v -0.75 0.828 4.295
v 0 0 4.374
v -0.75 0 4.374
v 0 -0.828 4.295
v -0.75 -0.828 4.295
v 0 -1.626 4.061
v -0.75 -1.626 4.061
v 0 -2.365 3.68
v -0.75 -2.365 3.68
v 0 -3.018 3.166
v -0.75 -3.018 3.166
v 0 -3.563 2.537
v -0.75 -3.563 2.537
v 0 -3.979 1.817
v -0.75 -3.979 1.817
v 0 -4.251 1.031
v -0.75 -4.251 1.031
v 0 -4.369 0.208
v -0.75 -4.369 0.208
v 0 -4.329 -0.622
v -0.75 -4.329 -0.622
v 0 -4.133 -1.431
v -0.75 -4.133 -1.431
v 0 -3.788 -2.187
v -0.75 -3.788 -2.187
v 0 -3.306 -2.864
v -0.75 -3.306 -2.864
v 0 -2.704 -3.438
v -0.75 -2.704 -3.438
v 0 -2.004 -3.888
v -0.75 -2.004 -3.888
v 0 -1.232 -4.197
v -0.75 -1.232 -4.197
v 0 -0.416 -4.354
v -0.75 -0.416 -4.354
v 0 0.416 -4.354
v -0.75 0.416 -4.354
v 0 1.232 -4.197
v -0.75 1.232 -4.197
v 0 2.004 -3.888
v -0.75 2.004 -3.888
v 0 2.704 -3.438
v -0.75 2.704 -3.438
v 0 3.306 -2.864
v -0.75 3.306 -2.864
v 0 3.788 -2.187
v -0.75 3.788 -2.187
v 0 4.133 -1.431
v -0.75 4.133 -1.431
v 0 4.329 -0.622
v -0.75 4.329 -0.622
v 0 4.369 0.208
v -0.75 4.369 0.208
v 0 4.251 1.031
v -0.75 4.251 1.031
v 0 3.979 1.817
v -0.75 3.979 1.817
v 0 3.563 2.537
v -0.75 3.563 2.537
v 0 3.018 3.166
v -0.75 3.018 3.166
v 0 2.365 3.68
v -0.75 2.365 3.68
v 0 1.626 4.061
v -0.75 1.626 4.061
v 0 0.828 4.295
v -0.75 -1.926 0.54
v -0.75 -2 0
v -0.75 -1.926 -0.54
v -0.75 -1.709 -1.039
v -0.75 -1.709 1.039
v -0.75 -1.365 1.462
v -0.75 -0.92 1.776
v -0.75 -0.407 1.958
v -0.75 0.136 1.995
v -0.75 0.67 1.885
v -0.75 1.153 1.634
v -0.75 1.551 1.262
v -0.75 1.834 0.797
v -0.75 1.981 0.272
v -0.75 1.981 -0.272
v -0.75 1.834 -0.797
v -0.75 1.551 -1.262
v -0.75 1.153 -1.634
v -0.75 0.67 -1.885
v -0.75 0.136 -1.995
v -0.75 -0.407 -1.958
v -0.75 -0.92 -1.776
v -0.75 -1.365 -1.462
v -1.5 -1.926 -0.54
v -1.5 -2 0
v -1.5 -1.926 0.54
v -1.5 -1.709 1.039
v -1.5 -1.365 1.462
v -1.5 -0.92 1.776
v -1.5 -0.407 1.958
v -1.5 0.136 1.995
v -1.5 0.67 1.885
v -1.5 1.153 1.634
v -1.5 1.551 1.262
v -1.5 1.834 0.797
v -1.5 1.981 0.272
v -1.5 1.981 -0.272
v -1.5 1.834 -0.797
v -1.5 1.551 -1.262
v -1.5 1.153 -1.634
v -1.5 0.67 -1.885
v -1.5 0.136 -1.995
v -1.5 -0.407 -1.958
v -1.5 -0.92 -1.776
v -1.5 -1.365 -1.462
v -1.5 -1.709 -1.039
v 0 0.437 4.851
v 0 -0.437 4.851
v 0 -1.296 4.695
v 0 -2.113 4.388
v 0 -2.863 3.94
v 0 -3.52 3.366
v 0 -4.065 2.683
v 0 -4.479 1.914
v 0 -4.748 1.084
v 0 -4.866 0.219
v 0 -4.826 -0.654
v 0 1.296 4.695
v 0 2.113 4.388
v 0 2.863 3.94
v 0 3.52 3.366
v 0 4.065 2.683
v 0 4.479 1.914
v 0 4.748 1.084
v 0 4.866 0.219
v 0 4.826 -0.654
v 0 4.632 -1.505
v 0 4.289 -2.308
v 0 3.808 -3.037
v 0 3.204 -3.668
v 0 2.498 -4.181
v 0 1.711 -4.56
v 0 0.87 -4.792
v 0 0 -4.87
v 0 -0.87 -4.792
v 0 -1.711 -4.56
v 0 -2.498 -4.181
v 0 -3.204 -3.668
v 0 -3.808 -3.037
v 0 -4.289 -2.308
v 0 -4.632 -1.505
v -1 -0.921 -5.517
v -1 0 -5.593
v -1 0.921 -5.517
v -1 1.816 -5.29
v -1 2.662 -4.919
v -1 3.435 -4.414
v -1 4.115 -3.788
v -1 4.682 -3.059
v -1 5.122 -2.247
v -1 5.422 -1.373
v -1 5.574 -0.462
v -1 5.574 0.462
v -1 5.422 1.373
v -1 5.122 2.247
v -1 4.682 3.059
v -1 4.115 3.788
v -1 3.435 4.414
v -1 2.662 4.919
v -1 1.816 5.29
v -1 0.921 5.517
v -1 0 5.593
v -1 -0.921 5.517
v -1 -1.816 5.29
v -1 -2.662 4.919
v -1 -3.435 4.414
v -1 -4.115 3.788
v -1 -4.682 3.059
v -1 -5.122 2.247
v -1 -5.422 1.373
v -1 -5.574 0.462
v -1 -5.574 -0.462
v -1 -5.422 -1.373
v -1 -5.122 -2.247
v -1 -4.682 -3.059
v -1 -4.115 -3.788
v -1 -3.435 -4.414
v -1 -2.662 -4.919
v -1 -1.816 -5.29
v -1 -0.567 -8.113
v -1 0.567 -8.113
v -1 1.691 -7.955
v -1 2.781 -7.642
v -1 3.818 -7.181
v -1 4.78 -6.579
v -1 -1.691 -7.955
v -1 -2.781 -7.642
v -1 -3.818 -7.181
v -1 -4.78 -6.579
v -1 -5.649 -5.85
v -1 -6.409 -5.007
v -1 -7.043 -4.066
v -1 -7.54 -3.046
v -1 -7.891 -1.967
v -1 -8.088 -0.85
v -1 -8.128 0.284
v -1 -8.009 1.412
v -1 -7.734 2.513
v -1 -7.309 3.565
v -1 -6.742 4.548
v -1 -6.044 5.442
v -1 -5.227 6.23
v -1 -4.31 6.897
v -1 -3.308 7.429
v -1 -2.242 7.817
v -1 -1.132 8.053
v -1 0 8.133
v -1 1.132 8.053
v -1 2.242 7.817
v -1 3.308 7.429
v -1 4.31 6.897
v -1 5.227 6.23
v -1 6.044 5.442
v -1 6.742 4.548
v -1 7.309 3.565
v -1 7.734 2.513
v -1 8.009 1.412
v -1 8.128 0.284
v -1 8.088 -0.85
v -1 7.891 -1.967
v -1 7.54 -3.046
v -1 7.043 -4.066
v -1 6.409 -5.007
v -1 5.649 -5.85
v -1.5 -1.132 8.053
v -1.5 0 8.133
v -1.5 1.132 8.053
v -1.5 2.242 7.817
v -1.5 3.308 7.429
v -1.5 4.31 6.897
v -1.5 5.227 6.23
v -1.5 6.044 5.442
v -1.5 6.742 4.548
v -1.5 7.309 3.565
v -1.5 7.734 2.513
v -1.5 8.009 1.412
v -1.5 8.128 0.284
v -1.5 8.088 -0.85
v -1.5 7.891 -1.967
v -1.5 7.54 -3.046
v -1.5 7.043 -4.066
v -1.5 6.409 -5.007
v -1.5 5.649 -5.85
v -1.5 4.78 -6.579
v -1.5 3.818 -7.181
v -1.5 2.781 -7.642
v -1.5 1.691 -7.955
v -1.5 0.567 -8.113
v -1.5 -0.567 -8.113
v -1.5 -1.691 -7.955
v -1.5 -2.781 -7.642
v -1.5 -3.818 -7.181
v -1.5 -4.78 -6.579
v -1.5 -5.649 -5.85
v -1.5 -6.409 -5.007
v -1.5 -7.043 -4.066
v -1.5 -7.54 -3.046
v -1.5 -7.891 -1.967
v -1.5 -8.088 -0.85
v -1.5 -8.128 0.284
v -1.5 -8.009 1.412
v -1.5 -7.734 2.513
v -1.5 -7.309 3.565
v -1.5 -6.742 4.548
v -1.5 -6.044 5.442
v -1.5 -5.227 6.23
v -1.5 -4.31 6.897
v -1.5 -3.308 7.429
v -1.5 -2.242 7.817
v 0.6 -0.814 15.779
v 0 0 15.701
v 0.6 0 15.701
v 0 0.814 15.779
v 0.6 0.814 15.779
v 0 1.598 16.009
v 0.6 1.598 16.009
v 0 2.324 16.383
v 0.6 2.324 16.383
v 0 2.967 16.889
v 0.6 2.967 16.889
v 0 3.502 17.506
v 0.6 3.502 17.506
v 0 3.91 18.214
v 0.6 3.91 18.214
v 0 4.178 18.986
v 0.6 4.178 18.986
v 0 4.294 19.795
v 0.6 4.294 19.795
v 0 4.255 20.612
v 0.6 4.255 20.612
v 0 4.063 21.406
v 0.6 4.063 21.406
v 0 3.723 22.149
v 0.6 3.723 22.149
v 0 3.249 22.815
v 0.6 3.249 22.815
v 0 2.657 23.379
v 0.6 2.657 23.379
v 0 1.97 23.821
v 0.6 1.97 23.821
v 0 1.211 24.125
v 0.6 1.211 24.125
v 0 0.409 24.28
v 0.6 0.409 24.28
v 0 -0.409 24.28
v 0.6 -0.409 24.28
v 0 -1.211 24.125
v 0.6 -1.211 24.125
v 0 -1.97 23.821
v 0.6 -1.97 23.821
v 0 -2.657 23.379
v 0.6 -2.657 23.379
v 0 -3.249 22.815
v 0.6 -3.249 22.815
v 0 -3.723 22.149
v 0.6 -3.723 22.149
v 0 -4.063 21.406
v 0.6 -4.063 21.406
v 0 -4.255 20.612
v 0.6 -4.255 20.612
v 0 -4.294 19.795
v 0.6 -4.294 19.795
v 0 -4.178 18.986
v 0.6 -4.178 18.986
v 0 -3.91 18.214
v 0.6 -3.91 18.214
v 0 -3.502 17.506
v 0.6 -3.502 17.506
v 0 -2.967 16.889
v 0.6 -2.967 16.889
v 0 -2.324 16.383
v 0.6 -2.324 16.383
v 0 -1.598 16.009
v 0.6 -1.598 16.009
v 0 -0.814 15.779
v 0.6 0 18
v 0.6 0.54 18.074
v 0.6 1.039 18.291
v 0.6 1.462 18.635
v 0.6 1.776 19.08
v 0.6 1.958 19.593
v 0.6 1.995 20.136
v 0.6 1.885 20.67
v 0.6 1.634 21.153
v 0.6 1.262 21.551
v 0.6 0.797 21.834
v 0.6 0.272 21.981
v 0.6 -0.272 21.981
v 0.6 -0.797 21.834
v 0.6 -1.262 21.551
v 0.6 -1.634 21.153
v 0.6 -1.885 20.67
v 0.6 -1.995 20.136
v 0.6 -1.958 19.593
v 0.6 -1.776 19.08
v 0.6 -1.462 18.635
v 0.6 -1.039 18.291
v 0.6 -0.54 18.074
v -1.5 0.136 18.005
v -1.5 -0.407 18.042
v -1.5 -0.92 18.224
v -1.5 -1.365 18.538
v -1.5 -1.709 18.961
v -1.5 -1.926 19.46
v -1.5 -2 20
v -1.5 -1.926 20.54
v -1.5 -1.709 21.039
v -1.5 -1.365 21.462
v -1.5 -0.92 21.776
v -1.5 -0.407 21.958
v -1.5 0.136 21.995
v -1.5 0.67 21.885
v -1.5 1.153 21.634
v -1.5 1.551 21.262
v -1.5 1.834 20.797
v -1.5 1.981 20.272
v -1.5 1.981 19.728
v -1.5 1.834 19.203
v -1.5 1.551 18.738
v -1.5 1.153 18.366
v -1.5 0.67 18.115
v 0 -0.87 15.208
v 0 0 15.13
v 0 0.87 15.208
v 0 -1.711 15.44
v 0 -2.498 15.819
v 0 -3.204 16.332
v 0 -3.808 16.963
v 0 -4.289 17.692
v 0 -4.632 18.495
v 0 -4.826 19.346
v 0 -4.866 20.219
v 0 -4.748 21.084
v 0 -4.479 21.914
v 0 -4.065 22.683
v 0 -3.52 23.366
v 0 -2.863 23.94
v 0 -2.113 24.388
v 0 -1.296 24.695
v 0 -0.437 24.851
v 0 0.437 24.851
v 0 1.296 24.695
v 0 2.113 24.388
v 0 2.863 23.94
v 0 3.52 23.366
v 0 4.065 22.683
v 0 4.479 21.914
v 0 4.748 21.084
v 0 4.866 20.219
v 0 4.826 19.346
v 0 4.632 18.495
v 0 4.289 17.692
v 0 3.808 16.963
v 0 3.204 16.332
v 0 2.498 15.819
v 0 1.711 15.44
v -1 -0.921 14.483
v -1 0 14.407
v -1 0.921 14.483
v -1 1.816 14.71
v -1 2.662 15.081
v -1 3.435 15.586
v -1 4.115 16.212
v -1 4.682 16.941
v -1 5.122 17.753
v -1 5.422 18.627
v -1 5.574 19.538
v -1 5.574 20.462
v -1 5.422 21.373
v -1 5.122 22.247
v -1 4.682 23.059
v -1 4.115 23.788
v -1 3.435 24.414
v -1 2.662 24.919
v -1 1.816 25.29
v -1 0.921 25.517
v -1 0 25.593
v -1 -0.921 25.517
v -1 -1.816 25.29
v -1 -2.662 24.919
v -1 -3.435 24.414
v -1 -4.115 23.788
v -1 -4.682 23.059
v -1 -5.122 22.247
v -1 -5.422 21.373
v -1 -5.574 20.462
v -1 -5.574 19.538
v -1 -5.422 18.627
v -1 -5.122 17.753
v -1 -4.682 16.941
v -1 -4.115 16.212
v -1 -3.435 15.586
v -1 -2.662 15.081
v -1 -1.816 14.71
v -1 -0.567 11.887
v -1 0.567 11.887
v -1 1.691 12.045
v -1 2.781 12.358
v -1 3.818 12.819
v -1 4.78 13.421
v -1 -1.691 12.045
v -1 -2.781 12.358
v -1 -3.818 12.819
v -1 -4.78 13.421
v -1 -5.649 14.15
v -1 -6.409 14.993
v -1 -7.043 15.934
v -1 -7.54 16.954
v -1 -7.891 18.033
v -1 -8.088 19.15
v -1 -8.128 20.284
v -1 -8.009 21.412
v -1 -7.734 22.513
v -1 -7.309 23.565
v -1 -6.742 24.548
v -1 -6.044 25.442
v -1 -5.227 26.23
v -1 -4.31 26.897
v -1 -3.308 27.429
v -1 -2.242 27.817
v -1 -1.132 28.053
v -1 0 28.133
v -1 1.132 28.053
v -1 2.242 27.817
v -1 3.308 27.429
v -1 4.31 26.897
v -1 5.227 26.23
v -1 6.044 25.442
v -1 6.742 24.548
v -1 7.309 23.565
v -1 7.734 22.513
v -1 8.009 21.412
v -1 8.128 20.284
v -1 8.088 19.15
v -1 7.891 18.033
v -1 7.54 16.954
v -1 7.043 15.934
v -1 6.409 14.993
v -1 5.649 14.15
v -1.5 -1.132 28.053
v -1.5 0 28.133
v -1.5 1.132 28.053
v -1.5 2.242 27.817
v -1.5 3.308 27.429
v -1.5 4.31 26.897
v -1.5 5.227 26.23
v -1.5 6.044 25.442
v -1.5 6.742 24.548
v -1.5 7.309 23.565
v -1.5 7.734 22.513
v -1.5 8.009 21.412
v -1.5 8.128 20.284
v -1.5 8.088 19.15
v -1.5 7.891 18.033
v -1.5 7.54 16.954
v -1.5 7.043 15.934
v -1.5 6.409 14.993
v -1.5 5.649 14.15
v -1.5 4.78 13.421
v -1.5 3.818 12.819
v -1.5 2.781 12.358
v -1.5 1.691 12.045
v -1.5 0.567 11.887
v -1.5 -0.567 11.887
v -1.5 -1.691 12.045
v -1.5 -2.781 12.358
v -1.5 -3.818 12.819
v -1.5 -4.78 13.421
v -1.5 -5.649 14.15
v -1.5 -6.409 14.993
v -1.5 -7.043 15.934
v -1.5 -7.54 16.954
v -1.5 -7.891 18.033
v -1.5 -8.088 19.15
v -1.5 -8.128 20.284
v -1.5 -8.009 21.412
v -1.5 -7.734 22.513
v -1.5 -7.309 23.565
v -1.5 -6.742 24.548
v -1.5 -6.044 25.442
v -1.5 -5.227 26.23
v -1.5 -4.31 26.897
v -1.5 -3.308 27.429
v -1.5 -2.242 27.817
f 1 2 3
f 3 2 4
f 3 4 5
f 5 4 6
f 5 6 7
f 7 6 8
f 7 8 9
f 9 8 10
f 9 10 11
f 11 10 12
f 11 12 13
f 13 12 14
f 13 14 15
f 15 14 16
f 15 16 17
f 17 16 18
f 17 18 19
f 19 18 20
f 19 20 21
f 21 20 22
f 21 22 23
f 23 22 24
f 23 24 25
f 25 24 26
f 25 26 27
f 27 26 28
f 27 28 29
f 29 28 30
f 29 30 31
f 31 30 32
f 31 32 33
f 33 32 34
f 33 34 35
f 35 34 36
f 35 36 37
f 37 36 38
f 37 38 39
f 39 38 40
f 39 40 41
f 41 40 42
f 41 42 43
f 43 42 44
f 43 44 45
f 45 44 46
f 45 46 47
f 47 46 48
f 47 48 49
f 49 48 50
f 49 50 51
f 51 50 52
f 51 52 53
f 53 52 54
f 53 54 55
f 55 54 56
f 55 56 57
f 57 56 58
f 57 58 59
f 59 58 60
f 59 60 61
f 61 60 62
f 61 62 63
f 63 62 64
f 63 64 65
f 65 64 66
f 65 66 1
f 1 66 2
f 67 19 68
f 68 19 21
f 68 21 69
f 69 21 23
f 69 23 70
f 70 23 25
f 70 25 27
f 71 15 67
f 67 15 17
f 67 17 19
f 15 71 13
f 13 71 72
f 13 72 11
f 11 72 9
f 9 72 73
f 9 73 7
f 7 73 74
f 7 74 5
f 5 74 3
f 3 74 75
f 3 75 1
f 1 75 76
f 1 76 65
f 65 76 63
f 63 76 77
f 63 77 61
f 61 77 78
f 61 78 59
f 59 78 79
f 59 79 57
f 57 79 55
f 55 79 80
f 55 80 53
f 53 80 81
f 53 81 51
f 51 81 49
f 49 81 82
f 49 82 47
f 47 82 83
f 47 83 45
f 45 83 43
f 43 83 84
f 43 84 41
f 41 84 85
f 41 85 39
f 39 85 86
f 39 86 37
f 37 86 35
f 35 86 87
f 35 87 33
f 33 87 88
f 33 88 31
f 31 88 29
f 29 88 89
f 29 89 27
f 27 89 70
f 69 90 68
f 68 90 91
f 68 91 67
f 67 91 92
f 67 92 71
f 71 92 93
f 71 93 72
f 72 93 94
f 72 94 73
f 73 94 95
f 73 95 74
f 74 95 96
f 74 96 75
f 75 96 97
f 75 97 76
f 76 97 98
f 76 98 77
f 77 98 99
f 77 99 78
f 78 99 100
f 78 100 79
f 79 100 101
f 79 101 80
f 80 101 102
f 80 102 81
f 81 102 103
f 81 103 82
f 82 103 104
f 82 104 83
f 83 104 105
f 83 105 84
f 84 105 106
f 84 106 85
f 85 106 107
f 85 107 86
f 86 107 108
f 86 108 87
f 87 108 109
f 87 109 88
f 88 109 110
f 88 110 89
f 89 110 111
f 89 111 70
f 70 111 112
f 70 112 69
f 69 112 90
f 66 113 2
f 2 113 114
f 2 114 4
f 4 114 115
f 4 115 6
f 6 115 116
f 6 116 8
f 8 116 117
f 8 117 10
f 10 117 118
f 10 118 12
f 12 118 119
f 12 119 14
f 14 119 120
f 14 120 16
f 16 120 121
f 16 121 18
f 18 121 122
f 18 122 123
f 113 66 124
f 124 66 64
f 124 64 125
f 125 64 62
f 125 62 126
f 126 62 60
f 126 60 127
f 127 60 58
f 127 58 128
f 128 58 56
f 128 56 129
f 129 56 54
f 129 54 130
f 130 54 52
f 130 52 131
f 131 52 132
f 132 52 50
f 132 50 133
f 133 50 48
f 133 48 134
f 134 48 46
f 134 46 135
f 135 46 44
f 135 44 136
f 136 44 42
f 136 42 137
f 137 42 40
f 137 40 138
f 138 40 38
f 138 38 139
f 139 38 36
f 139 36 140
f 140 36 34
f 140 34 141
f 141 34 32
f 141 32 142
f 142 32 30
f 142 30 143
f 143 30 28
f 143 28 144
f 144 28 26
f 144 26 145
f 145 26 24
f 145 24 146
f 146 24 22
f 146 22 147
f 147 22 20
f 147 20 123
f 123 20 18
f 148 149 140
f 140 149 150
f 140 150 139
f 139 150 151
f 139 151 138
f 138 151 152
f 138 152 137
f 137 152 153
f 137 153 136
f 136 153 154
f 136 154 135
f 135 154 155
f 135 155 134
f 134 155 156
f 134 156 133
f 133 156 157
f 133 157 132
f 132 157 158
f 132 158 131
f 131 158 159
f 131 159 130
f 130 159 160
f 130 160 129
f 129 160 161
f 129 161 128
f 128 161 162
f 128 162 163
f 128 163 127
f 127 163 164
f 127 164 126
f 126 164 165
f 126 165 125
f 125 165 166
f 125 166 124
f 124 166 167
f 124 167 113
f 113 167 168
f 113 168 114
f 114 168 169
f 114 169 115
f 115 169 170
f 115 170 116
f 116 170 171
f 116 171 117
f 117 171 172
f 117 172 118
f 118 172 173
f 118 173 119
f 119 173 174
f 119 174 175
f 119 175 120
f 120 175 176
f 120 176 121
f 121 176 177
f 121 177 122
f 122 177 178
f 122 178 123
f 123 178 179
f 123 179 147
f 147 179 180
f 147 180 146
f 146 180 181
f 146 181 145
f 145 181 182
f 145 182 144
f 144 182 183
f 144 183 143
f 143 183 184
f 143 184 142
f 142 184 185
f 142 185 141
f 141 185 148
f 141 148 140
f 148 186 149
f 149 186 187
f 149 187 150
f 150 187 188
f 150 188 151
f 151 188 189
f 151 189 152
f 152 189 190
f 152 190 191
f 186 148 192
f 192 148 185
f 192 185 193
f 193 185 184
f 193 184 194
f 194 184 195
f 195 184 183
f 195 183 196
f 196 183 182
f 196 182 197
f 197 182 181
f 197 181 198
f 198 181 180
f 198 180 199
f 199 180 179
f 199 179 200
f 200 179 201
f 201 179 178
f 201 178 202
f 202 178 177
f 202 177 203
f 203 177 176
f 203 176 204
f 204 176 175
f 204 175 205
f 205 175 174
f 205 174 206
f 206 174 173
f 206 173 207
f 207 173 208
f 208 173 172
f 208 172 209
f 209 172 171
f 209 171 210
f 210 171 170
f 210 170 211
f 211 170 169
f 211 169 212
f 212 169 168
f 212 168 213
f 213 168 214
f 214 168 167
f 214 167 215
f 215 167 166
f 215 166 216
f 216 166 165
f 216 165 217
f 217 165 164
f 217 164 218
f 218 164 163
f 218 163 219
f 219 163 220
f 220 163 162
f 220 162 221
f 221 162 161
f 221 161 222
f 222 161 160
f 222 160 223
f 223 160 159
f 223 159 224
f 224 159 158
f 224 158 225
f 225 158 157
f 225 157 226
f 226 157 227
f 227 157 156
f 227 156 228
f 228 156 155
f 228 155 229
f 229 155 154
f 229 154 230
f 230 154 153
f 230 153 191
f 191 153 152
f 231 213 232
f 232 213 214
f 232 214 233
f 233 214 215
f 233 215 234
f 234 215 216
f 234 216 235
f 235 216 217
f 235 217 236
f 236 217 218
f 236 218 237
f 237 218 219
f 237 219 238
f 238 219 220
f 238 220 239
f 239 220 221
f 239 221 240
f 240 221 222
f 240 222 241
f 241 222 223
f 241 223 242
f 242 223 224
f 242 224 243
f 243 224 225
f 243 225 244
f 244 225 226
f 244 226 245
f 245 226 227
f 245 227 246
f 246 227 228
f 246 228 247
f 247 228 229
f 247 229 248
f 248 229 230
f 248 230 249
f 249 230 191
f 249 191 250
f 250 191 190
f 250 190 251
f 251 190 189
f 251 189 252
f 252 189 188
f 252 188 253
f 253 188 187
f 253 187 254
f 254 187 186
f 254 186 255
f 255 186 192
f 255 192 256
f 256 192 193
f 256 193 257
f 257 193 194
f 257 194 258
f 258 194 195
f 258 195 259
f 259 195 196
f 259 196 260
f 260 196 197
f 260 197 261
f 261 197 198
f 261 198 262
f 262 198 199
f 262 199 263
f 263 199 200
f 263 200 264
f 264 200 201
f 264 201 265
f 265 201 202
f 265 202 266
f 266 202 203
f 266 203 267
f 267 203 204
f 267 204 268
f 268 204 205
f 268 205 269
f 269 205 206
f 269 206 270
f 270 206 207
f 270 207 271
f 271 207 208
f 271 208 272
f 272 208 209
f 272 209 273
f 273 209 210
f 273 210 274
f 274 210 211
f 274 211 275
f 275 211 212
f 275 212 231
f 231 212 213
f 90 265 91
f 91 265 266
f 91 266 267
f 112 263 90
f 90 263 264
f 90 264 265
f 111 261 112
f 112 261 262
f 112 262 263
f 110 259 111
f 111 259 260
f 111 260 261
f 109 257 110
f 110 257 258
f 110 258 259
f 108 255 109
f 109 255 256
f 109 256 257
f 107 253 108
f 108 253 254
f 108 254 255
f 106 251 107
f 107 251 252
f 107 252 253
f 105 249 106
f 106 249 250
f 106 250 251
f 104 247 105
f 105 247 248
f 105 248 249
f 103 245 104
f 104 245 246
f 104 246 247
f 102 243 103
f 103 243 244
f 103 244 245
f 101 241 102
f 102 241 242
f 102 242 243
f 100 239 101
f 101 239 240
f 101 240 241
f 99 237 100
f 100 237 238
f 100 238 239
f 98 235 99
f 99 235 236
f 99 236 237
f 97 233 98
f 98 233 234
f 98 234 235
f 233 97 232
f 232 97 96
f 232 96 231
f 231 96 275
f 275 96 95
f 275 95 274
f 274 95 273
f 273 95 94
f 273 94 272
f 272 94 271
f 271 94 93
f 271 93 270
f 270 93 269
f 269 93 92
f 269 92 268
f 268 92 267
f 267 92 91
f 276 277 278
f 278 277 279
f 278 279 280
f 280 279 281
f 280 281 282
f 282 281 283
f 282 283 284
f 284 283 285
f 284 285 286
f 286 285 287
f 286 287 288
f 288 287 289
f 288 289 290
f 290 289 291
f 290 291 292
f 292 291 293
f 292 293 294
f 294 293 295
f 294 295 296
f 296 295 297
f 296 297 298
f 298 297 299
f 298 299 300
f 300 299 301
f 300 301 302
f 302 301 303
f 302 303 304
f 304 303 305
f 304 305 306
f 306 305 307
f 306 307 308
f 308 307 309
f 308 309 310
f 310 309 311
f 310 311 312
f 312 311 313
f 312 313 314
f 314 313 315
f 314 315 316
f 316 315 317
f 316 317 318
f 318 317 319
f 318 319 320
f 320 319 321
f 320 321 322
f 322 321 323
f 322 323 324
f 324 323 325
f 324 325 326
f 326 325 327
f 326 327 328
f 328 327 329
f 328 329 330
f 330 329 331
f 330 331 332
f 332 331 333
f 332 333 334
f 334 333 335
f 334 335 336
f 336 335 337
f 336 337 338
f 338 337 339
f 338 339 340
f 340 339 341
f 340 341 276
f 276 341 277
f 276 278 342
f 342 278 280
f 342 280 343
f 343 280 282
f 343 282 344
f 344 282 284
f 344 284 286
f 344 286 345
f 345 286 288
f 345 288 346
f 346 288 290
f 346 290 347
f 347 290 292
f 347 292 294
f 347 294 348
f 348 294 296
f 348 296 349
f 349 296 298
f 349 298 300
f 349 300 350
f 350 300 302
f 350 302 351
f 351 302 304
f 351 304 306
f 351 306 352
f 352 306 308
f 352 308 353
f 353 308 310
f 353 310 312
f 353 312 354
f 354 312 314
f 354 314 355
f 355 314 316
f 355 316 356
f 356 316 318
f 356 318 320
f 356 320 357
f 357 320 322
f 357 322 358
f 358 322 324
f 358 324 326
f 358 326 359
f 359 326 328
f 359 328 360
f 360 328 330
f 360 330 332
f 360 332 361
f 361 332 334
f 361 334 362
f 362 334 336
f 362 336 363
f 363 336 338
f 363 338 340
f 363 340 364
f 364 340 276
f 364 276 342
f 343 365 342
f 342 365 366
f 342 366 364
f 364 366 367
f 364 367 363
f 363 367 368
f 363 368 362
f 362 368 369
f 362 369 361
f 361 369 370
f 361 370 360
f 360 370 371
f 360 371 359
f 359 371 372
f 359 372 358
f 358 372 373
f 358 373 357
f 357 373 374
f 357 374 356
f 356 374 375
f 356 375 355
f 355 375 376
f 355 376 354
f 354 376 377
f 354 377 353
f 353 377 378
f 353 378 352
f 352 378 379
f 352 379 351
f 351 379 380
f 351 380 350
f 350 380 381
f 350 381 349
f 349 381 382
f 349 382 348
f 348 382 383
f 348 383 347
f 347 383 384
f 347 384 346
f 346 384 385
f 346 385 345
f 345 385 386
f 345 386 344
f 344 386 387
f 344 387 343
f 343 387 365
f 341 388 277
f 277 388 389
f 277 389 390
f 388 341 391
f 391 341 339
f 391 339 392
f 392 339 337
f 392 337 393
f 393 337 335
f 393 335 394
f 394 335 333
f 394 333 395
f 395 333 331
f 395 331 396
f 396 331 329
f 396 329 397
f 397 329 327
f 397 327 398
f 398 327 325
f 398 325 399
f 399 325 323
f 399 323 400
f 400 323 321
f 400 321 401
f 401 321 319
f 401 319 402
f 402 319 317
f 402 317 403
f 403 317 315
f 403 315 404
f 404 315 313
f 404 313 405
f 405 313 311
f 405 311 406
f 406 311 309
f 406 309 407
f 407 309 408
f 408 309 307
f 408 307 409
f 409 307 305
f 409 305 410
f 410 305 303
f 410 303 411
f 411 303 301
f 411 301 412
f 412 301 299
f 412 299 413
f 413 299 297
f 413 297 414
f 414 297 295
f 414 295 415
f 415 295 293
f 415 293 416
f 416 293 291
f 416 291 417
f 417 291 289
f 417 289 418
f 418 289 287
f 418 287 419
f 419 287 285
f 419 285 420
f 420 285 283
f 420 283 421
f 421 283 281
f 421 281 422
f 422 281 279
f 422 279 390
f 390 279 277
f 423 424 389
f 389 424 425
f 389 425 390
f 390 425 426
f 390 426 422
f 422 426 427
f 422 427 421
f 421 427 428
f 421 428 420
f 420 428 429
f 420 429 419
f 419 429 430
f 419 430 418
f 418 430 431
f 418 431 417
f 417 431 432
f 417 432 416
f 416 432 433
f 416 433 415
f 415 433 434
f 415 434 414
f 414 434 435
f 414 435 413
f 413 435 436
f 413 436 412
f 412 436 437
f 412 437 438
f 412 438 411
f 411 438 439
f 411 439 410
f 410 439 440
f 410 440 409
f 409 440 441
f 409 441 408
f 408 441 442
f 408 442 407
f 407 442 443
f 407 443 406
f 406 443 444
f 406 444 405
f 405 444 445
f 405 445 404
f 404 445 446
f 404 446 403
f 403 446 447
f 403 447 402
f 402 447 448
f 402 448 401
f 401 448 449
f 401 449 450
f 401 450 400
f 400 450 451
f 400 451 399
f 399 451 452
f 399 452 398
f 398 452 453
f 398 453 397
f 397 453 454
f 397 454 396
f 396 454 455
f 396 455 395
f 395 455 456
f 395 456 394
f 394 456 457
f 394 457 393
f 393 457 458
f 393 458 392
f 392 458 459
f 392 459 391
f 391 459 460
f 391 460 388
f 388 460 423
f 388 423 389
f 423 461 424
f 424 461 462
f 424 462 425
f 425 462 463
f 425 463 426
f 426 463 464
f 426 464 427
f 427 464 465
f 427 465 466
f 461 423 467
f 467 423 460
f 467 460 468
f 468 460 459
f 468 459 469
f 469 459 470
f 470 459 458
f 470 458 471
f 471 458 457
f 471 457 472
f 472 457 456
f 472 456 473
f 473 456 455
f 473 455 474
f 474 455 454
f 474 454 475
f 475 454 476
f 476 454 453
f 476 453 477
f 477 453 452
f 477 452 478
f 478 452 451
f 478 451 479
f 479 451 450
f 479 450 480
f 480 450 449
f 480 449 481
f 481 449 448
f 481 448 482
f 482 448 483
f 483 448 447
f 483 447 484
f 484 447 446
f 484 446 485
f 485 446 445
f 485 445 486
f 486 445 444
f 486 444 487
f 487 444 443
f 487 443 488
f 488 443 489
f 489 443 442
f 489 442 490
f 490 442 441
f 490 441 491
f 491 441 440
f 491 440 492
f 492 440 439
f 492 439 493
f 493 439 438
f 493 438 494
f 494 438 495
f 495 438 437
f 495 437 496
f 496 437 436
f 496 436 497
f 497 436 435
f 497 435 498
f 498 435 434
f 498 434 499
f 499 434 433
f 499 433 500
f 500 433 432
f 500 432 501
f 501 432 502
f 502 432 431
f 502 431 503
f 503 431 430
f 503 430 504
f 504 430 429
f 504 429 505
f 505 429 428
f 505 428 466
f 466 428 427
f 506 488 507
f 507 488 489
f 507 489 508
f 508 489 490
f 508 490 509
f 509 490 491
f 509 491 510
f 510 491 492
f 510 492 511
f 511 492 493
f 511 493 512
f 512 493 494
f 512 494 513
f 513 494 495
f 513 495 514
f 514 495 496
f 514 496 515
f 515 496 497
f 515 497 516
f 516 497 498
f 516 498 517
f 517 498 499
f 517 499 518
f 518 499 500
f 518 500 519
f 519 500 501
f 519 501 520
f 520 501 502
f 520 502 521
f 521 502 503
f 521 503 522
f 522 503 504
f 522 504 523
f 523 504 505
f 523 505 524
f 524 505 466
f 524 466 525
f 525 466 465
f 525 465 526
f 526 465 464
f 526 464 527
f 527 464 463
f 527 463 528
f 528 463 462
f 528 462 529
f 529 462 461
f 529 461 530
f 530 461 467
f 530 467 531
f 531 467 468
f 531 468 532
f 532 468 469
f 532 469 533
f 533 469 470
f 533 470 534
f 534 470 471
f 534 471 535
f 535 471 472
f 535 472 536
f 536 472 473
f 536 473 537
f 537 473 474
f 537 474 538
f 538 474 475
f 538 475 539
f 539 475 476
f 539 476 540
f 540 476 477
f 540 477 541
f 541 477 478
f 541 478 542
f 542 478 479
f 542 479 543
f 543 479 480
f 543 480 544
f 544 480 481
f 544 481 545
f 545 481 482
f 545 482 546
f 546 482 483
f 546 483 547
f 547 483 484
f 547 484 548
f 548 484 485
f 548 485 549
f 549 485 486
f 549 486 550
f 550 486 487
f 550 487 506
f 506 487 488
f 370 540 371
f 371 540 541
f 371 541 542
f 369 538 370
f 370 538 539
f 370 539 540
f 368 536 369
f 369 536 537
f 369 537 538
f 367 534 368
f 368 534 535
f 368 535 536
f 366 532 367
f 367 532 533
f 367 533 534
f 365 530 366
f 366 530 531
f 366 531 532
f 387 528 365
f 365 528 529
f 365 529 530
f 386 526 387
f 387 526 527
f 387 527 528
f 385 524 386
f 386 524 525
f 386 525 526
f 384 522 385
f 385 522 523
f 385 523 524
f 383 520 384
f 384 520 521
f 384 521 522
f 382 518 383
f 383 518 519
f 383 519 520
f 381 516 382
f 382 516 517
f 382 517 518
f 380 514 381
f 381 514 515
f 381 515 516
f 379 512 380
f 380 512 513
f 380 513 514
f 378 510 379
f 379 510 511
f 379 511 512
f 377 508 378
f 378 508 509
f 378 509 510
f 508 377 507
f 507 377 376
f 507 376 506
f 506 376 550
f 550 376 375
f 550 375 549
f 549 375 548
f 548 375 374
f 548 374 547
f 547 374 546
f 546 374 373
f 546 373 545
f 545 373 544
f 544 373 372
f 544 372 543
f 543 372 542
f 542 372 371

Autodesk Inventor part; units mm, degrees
ref_plane "YZ Plane" through (0, 0, 0) normal (1, 0, 0) x (0, 1, 0)
ref_plane "XZ Plane" through (0, 0, 0) normal (0, 1, 0) x (-1, 0, 0)
ref_plane "XY Plane" through (0, 0, 0) normal (0, 0, 1) x (1, 0, 0)
sketch "Sketch1" plane through (0, 0, 0) normal (1, 0, 0) x (0, 1, 0)
  circle A0 centre (0, 0) radius 4.8704
  dimension "d0" = 9.7409
extrude "Extrusion1" add sketch "Sketch1" along normal mid plane 2
sketch "Sketch2" plane through (-1, 0, 0) normal (-1, 0, 0) x (0, 0, 1)
  circle A0 centre (0, 0) radius 8.1325
extrude "Extrusion2" add sketch "Sketch2" along normal blind 0.5
sketch "Sketch3" plane through (-1.5, 0, 0) normal (-1, 0, 0) x (0, 0, 1)
  point P0 (0, 0)
sketch "Sketch5" plane through (0, 0, 0) normal (0, 1, 0) x (-1, 0, 0)
  circle A0 centre (0, -0.6447) radius 0.3263
  line L0 (-1.5, 0) -> (1.5, 0)
  circle A1 centre (0, 0.6447) radius 0.3263
  point P0 (0, 0)
sketch "Sketch6" plane through (0, 0, 0) normal (0, 1, 0) x (-1, 0, 0)
  line L0 (1, -4.8704) -> (1, 4.8704) projected
  line L1 (1, -4.8704) -> (-1, -4.8704) projected
  line L2 (0, -4.8704) -> (1, -5.5929)
  line L3 (1, -8.1325) -> (1, 8.1325) projected
  line L4 (0, -4.8704) -> (-1, -5.5929)
  line L5 (-1, -5.5929) -> (-1, -4.8704)
  line L6 (1, -4.8704) -> (1, -5.5929)
  line L7 (-2.6263, 0) -> (3.0126, 0)
  line L8 (-1, -5.5929) -> (-1, -4.8704)
  line L9 (0, -4.8704) -> (1, -4.8704)
  point P0 (0, 0)
revolve "Revolution1" add sketch "Sketch6" angle 360 about axis through (2.6263, 0, 0) along (-1, 0, 0)
sketch "Sketch7" plane through (0, 0, 0) normal (0, 1, 0) x (-1, 0, 0)
  line L0 (-5.9098, -5.7705) -> (0, -5.7705)
  line L1 (0, -5.7705) -> (0, 6.7499)
  line L2 (0, 6.7499) -> (-5.9098, 6.7499)
  line L3 (-5.9098, 6.7499) -> (-5.9098, -5.7705)
  point P0 (0, 0)
extrude "Extrusion6" cut sketch "Sketch7" along normal mid plane 15.75
sketch "Sketch8" plane through (0, 0, 0) normal (1, 0, 0) x (0, 1, 0)
  circle A0 centre (0, 0) radius 2
  dimension "d15" = 4
extrude "Extrusion7" cut sketch "Sketch8" against normal through all
sketch "Sketch9" plane through (0, 0, 0) normal (1, 0, 0) x (0, 0, 1)
  circle A0 centre (0, 0) radius 4.374
  circle A1 centre (0, 0) radius 2 projected
  arc A2 (1.4796, -1.3457) -> (-1.4796, -1.3457) centre (0, 0) ccw
  line L0 (0.971, 0) -> (0.971, -2) projected
  line L1 (-0.971, -2) -> (-0.971, 0) projected
  point P0 (-4.8704, 0)
  point P1 (0, -2)
  point P2 (0, -2)
  point P3 (-4.8704, 0)
  dimension "d36" = 8.7479
extrude "Extrusion8" cut sketch "Sketch9" against normal blind 0.75 contours A0 | A1
pattern_linear "Rectangular Pattern3" count 2 spacing 20 along (0, 0, 1) of "Extrusion1", "Extrusion2", "Revolution1", "Extrusion6", "Extrusion7"
sketch "Sketch10" plane through (0, 0, 15.1296) normal (1, 0, 0) x (0, 0, -1)
  arc A0 (-4.8704, 2) -> (-4.8704, 2) centre (-4.8704, 0) ccw projected
  circle A1 centre (-4.8704, 0) radius 2
  circle A2 centre (-4.8704, 0) radius 4.299
  point P0 (15.1296, 0)
  dimension "d43" = 8.5979
extrude "Extrusion9" add sketch "Sketch10" along normal blind 0.6
sketch "Sketch13" plane through (0, 0, 0) normal (1, 0, 0) x (0, 0, -1)
  line L0 (-10.5789, 11.9796) -> (10.4116, 11.9796)
  line L1 (10.4116, 11.9796) -> (10.4116, -10.5162)
  line L2 (10.4116, -10.5162) -> (-10.5789, -10.5162)
  line L3 (-10.5789, -10.5162) -> (-10.5789, 11.9796)
  point P0 (0, 0)
sketch "Sketch12" plane through (0.6, 0, 20) normal (1, 0, 0) x (0, 0, -1)
  line L0 (-15.4581, 11.9378) -> (10.0065, 11.9378)
  line L1 (10.0065, 11.9378) -> (10.0065, -10.3907)
  line L2 (10.0065, -10.3907) -> (-15.4581, -10.3907)
  line L3 (-15.4581, -10.3907) -> (-15.4581, 11.9378)
  point P0 (20, 0)
sketch "Sketch11" plane through (0, 0, 20) normal (1, 0, 0) x (0, 1, 0)
  line L0 (12.8492, -9.7207) -> (-12.5468, -9.7207)
  line L1 (-12.5468, -9.7207) -> (-12.5468, -34.2097)
  line L2 (-12.5468, -34.2097) -> (12.8492, -34.2097)
  line L3 (12.8492, -34.2097) -> (12.8492, -9.7207)
  point P0 (0, -20)
ref_plane "Work Plane7" through (0, 0, 20) normal (1, 0, 0) x (0, 1, 0)
equation "\"tolerancia\" = 0.15"
properties part number "poleas_v13"
